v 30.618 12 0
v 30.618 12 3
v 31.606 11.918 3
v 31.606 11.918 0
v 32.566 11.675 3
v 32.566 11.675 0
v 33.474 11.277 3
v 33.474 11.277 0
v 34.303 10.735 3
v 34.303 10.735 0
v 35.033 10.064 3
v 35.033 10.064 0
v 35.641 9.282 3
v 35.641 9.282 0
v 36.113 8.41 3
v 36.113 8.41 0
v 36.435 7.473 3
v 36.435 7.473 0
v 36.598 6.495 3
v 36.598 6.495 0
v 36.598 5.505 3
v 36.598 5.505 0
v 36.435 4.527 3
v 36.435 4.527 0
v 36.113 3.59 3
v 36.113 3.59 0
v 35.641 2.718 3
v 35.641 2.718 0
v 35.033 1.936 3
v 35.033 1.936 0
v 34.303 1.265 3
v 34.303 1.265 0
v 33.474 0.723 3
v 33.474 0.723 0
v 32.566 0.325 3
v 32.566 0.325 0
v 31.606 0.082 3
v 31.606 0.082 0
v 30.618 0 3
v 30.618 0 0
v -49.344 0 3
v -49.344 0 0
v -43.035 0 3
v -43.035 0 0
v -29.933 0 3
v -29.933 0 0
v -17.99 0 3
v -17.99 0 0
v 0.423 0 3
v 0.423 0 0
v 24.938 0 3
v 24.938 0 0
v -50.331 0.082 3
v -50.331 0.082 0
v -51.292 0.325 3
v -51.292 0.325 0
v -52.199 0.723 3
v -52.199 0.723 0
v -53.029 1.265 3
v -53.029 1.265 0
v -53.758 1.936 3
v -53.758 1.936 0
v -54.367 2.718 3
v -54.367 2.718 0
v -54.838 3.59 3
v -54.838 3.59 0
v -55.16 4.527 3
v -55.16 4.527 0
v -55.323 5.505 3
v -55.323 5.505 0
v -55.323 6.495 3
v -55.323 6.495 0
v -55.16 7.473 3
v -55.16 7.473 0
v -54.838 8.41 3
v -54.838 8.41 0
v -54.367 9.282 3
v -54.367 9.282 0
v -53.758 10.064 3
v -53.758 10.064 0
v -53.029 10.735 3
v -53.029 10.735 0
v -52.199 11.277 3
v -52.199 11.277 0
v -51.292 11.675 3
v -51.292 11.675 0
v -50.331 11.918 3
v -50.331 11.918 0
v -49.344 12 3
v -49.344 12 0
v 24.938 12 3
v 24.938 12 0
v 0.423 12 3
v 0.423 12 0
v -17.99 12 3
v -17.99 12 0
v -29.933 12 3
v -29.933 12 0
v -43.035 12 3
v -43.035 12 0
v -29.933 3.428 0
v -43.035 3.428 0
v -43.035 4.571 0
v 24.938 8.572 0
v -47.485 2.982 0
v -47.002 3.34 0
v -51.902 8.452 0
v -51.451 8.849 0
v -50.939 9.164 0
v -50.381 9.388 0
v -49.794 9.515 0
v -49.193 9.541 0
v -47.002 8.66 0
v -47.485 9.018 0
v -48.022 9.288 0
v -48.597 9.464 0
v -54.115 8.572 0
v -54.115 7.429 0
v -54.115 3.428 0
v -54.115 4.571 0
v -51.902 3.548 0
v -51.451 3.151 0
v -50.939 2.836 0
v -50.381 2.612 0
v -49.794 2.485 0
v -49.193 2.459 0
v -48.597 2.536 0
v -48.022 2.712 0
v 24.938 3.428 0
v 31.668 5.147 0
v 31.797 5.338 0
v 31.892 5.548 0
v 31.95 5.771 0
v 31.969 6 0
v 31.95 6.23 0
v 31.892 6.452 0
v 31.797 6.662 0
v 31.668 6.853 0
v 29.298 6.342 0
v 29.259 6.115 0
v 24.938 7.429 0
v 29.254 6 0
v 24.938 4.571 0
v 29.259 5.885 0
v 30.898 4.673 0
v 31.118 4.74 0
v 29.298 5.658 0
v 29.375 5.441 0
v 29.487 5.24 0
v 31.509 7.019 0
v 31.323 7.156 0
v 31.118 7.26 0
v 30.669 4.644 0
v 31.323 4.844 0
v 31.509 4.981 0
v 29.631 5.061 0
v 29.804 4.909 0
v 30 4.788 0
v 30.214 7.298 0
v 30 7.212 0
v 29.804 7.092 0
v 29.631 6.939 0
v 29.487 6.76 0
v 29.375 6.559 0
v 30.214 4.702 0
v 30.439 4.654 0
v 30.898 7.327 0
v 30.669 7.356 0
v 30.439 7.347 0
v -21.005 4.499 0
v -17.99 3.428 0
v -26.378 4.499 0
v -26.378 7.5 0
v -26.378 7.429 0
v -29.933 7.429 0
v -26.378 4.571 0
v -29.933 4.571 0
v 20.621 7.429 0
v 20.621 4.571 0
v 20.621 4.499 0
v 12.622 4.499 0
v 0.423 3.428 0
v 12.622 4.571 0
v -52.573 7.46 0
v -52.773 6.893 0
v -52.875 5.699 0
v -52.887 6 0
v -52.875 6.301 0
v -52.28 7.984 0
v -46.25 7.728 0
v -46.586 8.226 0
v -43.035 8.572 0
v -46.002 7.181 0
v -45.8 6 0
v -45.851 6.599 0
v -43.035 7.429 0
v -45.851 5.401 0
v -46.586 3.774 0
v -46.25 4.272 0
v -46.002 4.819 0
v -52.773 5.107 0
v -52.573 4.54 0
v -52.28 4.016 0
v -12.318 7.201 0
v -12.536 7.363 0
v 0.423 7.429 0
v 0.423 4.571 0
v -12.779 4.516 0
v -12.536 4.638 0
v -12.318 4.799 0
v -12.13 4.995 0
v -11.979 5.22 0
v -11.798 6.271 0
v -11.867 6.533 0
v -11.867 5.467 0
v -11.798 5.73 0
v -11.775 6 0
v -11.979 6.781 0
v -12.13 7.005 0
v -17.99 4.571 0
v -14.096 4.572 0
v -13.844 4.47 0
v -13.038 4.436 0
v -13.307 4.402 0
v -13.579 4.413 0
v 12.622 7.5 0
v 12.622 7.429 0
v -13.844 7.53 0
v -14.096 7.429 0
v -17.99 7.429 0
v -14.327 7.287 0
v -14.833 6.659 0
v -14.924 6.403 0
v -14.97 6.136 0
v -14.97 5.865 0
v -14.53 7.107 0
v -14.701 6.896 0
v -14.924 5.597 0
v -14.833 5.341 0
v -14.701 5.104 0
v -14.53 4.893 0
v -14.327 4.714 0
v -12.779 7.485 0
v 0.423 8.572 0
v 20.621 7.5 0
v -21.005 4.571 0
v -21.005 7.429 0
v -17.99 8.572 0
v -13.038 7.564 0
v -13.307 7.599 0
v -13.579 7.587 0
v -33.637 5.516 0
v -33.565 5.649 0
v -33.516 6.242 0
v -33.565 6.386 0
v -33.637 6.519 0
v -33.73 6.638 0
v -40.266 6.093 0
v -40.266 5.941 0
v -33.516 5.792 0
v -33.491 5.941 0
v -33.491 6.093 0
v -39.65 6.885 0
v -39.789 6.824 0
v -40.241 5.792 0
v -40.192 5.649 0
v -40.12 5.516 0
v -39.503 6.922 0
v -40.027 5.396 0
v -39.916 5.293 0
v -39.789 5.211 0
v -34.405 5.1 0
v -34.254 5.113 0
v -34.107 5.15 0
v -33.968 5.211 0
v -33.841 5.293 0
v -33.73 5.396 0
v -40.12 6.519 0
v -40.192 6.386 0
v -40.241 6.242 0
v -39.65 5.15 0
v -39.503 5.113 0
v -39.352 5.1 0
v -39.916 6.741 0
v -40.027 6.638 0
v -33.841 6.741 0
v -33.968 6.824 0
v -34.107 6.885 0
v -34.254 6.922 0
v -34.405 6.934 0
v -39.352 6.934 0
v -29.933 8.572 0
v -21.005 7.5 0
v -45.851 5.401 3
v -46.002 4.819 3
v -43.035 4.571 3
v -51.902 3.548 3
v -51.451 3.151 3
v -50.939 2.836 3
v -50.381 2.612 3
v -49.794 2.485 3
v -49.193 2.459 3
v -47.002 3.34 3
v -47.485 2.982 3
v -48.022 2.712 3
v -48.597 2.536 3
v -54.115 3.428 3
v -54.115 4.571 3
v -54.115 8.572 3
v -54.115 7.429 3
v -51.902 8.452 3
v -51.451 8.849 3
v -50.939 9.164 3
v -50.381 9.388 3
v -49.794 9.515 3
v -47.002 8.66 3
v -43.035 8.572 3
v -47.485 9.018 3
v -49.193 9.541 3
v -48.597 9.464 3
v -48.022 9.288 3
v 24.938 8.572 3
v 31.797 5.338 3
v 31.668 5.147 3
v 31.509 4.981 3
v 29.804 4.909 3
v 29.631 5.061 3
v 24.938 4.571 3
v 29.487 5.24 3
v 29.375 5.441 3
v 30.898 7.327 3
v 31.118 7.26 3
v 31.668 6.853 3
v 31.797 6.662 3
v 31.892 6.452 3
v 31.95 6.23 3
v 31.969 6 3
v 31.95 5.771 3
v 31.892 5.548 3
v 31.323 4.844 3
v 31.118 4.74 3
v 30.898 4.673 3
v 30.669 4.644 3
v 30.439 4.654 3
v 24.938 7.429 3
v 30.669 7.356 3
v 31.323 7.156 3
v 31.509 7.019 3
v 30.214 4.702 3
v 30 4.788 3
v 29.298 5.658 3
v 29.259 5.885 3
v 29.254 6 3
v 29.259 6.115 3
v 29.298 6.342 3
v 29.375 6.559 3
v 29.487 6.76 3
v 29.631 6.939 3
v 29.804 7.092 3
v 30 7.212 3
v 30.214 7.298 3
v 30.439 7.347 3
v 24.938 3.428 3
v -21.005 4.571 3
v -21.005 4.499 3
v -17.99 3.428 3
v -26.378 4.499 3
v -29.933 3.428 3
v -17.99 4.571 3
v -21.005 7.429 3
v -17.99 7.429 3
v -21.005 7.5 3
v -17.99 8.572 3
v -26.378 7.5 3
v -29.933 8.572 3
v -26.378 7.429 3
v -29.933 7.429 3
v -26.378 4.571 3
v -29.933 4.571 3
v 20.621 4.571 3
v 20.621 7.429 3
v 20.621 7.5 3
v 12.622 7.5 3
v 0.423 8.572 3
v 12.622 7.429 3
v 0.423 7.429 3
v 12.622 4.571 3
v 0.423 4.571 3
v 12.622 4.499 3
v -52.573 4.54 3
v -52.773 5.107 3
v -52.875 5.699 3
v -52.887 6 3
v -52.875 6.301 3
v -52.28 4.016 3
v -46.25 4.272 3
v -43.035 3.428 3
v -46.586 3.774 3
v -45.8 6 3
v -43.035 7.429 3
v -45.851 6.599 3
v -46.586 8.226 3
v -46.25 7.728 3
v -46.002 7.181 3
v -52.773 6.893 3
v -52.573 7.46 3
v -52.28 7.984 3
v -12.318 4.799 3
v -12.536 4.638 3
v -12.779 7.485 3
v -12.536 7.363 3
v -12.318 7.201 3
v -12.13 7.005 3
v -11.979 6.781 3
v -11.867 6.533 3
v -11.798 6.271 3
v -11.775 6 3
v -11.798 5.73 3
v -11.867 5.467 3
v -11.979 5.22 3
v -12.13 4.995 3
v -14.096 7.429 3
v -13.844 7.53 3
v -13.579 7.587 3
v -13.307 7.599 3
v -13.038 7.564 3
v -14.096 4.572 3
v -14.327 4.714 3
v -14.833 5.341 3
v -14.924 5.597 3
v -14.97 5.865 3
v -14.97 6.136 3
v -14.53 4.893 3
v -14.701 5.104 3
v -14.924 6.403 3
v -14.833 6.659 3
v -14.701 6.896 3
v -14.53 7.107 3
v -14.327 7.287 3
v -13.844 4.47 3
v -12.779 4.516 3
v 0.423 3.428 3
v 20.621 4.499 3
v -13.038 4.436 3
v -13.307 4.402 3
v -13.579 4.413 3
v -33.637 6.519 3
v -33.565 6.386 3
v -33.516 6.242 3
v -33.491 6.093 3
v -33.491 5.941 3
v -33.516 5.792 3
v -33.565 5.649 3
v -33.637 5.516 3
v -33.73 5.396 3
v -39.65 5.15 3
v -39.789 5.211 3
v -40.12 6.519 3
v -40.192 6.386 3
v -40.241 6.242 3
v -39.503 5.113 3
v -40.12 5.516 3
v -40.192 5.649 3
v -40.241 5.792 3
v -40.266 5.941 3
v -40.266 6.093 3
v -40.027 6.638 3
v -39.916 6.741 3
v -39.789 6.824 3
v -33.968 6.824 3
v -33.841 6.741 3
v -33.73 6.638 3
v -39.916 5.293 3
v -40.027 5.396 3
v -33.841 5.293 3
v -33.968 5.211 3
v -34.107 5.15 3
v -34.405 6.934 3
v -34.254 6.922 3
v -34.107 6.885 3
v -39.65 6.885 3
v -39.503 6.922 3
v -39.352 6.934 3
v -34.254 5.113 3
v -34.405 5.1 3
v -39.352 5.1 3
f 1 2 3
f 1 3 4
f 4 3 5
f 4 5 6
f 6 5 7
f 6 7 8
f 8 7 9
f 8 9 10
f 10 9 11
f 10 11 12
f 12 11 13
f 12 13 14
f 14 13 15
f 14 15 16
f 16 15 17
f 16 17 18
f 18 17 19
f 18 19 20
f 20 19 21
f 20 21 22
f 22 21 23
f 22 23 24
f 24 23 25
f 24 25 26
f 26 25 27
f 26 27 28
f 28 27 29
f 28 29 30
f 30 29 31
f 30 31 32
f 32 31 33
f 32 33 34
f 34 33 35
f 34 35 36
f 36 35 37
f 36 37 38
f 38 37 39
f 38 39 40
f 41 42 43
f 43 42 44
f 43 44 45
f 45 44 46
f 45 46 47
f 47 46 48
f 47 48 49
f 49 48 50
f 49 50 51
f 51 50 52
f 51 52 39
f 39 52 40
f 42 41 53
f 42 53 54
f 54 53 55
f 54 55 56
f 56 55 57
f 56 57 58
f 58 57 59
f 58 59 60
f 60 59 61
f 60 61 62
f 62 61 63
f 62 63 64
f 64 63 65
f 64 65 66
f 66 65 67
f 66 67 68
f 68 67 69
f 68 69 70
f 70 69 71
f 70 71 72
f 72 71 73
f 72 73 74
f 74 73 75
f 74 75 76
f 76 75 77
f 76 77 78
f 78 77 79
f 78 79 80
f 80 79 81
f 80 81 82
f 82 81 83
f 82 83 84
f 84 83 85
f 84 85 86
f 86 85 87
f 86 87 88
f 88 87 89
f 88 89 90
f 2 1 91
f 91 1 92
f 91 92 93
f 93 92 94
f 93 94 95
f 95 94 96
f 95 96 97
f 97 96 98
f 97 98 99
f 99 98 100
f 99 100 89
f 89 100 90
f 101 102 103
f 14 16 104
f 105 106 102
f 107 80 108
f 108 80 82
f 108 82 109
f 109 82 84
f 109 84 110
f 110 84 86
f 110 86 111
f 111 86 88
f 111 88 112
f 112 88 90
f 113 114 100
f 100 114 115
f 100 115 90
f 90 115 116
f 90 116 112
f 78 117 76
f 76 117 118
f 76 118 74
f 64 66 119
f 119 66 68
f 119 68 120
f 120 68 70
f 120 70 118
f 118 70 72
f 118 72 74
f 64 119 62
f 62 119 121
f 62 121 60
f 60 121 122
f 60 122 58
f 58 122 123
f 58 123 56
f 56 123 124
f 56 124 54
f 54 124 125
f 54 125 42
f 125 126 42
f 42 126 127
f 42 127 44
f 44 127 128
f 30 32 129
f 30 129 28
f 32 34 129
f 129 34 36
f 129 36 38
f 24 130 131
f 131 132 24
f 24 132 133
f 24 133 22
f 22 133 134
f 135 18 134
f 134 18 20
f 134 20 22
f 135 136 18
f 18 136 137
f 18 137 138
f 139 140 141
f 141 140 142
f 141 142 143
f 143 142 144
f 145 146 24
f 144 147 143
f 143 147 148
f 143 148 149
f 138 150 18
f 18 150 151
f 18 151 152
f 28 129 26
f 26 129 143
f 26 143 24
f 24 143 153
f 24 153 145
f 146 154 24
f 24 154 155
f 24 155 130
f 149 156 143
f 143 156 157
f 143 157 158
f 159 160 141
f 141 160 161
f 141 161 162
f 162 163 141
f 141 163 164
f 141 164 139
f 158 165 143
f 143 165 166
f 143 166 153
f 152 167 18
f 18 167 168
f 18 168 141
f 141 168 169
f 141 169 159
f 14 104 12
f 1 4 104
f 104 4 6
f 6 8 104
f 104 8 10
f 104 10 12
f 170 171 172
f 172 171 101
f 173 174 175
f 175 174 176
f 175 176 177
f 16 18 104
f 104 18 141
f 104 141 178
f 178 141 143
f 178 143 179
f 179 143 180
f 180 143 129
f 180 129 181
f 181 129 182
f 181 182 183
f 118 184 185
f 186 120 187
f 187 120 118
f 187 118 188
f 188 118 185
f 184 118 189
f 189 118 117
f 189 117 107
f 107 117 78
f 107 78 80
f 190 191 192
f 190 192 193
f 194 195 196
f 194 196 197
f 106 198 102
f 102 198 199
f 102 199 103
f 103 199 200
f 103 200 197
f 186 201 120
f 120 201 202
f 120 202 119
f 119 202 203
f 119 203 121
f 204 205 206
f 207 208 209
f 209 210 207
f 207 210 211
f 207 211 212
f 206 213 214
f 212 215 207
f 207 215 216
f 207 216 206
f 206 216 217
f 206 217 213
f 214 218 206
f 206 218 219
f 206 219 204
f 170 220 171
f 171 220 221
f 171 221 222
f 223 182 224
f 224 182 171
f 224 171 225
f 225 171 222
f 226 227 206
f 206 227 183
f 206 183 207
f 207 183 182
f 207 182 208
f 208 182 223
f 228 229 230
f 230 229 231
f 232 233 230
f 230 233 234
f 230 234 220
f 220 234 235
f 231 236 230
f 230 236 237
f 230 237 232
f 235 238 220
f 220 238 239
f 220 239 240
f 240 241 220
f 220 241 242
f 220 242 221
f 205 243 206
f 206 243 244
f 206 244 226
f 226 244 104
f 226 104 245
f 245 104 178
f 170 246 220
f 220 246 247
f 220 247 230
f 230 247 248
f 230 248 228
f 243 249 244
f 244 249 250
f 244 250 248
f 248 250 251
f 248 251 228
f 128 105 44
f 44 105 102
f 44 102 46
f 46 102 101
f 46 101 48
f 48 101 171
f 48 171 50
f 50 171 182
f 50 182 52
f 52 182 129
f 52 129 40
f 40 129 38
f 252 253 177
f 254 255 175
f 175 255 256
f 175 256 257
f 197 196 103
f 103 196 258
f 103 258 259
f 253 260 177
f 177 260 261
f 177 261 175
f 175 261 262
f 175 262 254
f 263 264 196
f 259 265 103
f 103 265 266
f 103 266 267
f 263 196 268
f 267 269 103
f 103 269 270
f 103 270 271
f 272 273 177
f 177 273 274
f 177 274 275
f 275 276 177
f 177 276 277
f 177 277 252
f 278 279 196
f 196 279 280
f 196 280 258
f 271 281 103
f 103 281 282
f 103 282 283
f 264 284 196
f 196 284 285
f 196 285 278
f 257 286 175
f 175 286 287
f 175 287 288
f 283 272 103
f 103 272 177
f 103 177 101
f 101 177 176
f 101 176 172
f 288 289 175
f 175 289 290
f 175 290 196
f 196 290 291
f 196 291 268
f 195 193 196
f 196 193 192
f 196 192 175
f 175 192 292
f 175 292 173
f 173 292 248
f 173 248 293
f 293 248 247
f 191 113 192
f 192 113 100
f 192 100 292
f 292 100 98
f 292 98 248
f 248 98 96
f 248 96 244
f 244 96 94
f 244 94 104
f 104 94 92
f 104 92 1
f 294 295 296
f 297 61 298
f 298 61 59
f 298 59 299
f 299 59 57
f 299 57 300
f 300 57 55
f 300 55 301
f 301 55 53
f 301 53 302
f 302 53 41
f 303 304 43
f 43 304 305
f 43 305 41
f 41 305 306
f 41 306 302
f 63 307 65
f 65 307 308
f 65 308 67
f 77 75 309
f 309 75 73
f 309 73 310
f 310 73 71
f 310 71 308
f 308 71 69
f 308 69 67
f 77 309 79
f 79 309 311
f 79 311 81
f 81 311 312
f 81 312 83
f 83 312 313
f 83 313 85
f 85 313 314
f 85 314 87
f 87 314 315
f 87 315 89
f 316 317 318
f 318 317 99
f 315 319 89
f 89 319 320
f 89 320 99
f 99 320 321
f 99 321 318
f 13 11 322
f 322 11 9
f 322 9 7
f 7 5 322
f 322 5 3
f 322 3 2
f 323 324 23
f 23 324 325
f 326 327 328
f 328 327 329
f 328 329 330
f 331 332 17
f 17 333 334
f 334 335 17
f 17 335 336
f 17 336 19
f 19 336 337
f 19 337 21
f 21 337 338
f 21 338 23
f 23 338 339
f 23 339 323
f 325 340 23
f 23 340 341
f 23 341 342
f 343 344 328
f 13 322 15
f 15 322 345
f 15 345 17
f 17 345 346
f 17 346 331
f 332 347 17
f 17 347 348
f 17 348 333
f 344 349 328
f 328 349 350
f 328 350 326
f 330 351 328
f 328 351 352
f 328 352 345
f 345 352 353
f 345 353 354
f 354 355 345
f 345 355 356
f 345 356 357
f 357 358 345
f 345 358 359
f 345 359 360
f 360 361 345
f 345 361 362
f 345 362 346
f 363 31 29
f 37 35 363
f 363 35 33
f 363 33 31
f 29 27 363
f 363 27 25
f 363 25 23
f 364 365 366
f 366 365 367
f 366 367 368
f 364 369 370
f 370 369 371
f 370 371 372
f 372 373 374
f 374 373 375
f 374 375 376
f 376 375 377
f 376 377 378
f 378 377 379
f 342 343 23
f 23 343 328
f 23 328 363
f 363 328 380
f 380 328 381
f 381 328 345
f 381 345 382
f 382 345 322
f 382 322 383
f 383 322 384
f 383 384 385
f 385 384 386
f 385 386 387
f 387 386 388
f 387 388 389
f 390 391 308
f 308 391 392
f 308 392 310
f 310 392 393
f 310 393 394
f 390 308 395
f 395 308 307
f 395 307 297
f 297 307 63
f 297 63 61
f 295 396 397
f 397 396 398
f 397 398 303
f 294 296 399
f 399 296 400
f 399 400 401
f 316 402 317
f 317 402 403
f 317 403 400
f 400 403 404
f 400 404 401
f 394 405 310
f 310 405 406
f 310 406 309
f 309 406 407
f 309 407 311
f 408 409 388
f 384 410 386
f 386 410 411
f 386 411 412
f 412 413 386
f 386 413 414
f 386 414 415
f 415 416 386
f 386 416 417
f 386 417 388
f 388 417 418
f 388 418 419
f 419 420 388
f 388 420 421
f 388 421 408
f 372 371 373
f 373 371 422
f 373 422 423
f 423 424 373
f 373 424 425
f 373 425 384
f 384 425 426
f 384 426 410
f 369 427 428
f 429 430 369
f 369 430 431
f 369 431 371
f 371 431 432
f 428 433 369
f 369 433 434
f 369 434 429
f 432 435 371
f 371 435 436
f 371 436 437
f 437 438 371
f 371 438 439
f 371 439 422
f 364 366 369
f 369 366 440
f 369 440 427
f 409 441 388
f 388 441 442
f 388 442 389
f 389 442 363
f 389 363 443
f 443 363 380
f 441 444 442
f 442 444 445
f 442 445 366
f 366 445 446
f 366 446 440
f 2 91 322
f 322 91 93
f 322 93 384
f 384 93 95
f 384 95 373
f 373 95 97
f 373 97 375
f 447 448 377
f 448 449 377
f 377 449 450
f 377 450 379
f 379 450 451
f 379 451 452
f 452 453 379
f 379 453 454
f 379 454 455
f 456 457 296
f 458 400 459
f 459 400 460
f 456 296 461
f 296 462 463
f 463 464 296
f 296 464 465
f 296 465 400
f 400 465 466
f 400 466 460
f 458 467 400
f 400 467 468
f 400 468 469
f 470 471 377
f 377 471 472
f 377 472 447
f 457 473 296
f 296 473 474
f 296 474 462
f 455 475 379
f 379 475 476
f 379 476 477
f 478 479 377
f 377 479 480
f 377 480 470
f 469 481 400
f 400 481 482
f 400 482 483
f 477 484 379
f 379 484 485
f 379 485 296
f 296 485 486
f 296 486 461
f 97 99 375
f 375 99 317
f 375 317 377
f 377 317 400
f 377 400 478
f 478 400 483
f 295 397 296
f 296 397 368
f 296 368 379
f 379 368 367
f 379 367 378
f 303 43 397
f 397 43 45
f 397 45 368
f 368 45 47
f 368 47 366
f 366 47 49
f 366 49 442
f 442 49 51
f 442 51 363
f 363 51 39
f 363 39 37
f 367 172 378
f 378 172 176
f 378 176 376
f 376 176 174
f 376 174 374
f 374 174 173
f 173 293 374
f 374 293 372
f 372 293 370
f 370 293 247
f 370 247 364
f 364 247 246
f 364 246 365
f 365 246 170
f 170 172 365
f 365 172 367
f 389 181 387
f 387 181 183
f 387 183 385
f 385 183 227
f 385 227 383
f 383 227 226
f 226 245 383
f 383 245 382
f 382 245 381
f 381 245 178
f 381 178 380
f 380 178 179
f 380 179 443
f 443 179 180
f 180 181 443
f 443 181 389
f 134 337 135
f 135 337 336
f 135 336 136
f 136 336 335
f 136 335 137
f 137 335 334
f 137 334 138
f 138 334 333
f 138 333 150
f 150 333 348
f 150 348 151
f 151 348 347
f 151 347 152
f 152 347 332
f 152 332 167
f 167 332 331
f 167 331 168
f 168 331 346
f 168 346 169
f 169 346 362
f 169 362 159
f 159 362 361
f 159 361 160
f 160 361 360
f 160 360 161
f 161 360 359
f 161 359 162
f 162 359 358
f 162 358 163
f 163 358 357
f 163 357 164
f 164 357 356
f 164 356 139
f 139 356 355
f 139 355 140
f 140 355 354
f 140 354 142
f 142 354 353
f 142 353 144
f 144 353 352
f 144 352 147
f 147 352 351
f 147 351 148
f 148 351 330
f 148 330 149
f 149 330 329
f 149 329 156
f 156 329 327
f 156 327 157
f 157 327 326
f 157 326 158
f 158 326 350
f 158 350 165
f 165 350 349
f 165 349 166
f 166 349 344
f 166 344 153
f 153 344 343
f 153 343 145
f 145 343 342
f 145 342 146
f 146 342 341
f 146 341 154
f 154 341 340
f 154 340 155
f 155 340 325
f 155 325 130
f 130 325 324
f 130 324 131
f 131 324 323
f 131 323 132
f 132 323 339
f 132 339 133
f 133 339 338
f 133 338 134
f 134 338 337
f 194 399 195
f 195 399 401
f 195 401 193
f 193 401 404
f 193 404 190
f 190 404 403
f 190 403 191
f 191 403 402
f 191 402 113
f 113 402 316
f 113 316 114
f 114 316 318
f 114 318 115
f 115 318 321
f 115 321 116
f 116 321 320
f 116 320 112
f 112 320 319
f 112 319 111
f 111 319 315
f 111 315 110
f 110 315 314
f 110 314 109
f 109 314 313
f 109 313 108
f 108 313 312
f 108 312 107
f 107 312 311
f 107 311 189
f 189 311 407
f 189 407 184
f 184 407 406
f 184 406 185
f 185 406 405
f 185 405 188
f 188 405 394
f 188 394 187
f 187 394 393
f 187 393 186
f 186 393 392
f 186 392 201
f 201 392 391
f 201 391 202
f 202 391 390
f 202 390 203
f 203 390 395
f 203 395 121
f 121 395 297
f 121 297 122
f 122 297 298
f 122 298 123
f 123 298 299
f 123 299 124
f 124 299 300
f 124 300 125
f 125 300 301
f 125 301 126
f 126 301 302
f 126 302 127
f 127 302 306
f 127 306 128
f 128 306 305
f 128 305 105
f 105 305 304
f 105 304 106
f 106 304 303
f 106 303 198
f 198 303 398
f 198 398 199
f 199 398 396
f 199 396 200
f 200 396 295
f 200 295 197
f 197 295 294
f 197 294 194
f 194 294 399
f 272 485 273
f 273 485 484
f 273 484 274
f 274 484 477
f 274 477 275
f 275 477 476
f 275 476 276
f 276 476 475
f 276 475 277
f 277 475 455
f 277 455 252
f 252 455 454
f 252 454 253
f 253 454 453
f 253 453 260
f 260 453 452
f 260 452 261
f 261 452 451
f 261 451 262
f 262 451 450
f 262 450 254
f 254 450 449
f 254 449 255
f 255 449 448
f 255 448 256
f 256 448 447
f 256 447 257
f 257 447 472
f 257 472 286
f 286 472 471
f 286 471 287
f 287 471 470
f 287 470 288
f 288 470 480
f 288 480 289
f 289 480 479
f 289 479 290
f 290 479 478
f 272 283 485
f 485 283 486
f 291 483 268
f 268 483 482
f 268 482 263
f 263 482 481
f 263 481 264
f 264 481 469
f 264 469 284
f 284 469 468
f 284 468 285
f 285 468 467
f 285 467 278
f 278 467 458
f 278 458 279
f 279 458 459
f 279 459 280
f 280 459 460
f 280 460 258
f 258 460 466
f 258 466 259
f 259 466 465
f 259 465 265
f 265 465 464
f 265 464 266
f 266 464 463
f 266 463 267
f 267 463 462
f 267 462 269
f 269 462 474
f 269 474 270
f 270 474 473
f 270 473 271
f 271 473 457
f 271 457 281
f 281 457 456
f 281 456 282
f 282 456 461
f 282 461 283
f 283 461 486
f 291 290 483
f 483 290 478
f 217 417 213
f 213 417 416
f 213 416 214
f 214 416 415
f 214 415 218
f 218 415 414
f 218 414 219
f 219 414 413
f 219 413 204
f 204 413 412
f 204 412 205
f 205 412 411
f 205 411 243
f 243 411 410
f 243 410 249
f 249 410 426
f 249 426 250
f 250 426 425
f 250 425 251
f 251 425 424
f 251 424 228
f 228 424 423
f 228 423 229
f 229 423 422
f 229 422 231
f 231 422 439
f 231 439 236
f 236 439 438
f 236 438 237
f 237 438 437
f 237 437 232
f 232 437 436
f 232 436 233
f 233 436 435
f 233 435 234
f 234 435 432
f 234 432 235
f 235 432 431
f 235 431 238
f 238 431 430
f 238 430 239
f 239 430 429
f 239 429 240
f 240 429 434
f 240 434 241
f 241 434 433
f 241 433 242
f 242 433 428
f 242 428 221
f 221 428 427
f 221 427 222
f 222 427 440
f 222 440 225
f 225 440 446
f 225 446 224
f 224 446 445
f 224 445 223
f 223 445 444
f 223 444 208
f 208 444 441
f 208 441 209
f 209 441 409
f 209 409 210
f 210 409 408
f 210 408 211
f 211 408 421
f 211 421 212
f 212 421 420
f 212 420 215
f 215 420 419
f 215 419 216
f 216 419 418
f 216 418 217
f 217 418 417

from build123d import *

# Parameters (mm, degrees)
SKETCH_1_R          = 1.357591064
SKETCH_1_R_2        = 3.543825796
SKETCH_1_W          = 5.3728
SKETCH_1_H          = 3.0001
SKETCH_1_W_2        = 7.9992
EXTRUDE_1_DEPTH     = 3
SKETCH_2_R          = 1.6
CUT_EXTRUDE_1_DEPTH = 57.708942736


with BuildPart() as part:
    # 草图1 → 凸台-拉伸1 (new body)
    with BuildSketch(Plane.XY.offset(3)):
        with BuildLine():
            Line((30.618171933, 12), (-49.343510787, 12))
            ThreePointArc((-49.343510787, 12), (-55.343510787, 6), (-49.343510787, 0))
            Line((-49.343510787, 0), (30.618171933, 0))
            ThreePointArc((30.618171933, 0), (36.618171933, 6), (30.618171933, 12))
        make_face()
        with Locations(Location((30.611606698, 6.0001, 0), (0, 0, 180))):
            Circle(SKETCH_1_R, mode=Mode.SUBTRACT)
        with Locations(Location((-13.375343302, 6.0002, 0), (0, 0, 180))):
            Circle(SKETCH_1_R, mode=Mode.SUBTRACT)
        with Locations(Location((-49.343510787, 6, 0), (0, 0, 180))):
            Circle(SKETCH_1_R_2, mode=Mode.SUBTRACT)
        with Locations((-23.691393302, 5.99945)):
            Rectangle(SKETCH_1_W, SKETCH_1_H, mode=Mode.SUBTRACT)
        with Locations((16.621706698, 5.99945)):
            Rectangle(SKETCH_1_W_2, SKETCH_1_H, mode=Mode.SUBTRACT)
        with BuildLine():
            Line((-34.404739086, 5.1001), (-39.352347519, 5.1001))
            ThreePointArc((-39.352347519, 5.1001), (-40.269423986, 6.017176468), (-39.352347519, 6.934252935))
            Line((-39.352347519, 6.934252935), (-34.404739086, 6.934252935))
            ThreePointArc((-34.404739086, 6.934252935), (-33.487662618, 6.017176468), (-34.404739086, 5.1001))
        make_face(mode=Mode.SUBTRACT)
    extrude(amount=-EXTRUDE_1_DEPTH)

    # 草图2 → 切除-拉伸1 (cut, through all)
    with BuildSketch(Plane.XY.offset(3)):
        with Locations((-13.375343302, 6.0002)):
            Circle(SKETCH_2_R)
    extrude(amount=-CUT_EXTRUDE_1_DEPTH, mode=Mode.SUBTRACT)


solid = part.part
